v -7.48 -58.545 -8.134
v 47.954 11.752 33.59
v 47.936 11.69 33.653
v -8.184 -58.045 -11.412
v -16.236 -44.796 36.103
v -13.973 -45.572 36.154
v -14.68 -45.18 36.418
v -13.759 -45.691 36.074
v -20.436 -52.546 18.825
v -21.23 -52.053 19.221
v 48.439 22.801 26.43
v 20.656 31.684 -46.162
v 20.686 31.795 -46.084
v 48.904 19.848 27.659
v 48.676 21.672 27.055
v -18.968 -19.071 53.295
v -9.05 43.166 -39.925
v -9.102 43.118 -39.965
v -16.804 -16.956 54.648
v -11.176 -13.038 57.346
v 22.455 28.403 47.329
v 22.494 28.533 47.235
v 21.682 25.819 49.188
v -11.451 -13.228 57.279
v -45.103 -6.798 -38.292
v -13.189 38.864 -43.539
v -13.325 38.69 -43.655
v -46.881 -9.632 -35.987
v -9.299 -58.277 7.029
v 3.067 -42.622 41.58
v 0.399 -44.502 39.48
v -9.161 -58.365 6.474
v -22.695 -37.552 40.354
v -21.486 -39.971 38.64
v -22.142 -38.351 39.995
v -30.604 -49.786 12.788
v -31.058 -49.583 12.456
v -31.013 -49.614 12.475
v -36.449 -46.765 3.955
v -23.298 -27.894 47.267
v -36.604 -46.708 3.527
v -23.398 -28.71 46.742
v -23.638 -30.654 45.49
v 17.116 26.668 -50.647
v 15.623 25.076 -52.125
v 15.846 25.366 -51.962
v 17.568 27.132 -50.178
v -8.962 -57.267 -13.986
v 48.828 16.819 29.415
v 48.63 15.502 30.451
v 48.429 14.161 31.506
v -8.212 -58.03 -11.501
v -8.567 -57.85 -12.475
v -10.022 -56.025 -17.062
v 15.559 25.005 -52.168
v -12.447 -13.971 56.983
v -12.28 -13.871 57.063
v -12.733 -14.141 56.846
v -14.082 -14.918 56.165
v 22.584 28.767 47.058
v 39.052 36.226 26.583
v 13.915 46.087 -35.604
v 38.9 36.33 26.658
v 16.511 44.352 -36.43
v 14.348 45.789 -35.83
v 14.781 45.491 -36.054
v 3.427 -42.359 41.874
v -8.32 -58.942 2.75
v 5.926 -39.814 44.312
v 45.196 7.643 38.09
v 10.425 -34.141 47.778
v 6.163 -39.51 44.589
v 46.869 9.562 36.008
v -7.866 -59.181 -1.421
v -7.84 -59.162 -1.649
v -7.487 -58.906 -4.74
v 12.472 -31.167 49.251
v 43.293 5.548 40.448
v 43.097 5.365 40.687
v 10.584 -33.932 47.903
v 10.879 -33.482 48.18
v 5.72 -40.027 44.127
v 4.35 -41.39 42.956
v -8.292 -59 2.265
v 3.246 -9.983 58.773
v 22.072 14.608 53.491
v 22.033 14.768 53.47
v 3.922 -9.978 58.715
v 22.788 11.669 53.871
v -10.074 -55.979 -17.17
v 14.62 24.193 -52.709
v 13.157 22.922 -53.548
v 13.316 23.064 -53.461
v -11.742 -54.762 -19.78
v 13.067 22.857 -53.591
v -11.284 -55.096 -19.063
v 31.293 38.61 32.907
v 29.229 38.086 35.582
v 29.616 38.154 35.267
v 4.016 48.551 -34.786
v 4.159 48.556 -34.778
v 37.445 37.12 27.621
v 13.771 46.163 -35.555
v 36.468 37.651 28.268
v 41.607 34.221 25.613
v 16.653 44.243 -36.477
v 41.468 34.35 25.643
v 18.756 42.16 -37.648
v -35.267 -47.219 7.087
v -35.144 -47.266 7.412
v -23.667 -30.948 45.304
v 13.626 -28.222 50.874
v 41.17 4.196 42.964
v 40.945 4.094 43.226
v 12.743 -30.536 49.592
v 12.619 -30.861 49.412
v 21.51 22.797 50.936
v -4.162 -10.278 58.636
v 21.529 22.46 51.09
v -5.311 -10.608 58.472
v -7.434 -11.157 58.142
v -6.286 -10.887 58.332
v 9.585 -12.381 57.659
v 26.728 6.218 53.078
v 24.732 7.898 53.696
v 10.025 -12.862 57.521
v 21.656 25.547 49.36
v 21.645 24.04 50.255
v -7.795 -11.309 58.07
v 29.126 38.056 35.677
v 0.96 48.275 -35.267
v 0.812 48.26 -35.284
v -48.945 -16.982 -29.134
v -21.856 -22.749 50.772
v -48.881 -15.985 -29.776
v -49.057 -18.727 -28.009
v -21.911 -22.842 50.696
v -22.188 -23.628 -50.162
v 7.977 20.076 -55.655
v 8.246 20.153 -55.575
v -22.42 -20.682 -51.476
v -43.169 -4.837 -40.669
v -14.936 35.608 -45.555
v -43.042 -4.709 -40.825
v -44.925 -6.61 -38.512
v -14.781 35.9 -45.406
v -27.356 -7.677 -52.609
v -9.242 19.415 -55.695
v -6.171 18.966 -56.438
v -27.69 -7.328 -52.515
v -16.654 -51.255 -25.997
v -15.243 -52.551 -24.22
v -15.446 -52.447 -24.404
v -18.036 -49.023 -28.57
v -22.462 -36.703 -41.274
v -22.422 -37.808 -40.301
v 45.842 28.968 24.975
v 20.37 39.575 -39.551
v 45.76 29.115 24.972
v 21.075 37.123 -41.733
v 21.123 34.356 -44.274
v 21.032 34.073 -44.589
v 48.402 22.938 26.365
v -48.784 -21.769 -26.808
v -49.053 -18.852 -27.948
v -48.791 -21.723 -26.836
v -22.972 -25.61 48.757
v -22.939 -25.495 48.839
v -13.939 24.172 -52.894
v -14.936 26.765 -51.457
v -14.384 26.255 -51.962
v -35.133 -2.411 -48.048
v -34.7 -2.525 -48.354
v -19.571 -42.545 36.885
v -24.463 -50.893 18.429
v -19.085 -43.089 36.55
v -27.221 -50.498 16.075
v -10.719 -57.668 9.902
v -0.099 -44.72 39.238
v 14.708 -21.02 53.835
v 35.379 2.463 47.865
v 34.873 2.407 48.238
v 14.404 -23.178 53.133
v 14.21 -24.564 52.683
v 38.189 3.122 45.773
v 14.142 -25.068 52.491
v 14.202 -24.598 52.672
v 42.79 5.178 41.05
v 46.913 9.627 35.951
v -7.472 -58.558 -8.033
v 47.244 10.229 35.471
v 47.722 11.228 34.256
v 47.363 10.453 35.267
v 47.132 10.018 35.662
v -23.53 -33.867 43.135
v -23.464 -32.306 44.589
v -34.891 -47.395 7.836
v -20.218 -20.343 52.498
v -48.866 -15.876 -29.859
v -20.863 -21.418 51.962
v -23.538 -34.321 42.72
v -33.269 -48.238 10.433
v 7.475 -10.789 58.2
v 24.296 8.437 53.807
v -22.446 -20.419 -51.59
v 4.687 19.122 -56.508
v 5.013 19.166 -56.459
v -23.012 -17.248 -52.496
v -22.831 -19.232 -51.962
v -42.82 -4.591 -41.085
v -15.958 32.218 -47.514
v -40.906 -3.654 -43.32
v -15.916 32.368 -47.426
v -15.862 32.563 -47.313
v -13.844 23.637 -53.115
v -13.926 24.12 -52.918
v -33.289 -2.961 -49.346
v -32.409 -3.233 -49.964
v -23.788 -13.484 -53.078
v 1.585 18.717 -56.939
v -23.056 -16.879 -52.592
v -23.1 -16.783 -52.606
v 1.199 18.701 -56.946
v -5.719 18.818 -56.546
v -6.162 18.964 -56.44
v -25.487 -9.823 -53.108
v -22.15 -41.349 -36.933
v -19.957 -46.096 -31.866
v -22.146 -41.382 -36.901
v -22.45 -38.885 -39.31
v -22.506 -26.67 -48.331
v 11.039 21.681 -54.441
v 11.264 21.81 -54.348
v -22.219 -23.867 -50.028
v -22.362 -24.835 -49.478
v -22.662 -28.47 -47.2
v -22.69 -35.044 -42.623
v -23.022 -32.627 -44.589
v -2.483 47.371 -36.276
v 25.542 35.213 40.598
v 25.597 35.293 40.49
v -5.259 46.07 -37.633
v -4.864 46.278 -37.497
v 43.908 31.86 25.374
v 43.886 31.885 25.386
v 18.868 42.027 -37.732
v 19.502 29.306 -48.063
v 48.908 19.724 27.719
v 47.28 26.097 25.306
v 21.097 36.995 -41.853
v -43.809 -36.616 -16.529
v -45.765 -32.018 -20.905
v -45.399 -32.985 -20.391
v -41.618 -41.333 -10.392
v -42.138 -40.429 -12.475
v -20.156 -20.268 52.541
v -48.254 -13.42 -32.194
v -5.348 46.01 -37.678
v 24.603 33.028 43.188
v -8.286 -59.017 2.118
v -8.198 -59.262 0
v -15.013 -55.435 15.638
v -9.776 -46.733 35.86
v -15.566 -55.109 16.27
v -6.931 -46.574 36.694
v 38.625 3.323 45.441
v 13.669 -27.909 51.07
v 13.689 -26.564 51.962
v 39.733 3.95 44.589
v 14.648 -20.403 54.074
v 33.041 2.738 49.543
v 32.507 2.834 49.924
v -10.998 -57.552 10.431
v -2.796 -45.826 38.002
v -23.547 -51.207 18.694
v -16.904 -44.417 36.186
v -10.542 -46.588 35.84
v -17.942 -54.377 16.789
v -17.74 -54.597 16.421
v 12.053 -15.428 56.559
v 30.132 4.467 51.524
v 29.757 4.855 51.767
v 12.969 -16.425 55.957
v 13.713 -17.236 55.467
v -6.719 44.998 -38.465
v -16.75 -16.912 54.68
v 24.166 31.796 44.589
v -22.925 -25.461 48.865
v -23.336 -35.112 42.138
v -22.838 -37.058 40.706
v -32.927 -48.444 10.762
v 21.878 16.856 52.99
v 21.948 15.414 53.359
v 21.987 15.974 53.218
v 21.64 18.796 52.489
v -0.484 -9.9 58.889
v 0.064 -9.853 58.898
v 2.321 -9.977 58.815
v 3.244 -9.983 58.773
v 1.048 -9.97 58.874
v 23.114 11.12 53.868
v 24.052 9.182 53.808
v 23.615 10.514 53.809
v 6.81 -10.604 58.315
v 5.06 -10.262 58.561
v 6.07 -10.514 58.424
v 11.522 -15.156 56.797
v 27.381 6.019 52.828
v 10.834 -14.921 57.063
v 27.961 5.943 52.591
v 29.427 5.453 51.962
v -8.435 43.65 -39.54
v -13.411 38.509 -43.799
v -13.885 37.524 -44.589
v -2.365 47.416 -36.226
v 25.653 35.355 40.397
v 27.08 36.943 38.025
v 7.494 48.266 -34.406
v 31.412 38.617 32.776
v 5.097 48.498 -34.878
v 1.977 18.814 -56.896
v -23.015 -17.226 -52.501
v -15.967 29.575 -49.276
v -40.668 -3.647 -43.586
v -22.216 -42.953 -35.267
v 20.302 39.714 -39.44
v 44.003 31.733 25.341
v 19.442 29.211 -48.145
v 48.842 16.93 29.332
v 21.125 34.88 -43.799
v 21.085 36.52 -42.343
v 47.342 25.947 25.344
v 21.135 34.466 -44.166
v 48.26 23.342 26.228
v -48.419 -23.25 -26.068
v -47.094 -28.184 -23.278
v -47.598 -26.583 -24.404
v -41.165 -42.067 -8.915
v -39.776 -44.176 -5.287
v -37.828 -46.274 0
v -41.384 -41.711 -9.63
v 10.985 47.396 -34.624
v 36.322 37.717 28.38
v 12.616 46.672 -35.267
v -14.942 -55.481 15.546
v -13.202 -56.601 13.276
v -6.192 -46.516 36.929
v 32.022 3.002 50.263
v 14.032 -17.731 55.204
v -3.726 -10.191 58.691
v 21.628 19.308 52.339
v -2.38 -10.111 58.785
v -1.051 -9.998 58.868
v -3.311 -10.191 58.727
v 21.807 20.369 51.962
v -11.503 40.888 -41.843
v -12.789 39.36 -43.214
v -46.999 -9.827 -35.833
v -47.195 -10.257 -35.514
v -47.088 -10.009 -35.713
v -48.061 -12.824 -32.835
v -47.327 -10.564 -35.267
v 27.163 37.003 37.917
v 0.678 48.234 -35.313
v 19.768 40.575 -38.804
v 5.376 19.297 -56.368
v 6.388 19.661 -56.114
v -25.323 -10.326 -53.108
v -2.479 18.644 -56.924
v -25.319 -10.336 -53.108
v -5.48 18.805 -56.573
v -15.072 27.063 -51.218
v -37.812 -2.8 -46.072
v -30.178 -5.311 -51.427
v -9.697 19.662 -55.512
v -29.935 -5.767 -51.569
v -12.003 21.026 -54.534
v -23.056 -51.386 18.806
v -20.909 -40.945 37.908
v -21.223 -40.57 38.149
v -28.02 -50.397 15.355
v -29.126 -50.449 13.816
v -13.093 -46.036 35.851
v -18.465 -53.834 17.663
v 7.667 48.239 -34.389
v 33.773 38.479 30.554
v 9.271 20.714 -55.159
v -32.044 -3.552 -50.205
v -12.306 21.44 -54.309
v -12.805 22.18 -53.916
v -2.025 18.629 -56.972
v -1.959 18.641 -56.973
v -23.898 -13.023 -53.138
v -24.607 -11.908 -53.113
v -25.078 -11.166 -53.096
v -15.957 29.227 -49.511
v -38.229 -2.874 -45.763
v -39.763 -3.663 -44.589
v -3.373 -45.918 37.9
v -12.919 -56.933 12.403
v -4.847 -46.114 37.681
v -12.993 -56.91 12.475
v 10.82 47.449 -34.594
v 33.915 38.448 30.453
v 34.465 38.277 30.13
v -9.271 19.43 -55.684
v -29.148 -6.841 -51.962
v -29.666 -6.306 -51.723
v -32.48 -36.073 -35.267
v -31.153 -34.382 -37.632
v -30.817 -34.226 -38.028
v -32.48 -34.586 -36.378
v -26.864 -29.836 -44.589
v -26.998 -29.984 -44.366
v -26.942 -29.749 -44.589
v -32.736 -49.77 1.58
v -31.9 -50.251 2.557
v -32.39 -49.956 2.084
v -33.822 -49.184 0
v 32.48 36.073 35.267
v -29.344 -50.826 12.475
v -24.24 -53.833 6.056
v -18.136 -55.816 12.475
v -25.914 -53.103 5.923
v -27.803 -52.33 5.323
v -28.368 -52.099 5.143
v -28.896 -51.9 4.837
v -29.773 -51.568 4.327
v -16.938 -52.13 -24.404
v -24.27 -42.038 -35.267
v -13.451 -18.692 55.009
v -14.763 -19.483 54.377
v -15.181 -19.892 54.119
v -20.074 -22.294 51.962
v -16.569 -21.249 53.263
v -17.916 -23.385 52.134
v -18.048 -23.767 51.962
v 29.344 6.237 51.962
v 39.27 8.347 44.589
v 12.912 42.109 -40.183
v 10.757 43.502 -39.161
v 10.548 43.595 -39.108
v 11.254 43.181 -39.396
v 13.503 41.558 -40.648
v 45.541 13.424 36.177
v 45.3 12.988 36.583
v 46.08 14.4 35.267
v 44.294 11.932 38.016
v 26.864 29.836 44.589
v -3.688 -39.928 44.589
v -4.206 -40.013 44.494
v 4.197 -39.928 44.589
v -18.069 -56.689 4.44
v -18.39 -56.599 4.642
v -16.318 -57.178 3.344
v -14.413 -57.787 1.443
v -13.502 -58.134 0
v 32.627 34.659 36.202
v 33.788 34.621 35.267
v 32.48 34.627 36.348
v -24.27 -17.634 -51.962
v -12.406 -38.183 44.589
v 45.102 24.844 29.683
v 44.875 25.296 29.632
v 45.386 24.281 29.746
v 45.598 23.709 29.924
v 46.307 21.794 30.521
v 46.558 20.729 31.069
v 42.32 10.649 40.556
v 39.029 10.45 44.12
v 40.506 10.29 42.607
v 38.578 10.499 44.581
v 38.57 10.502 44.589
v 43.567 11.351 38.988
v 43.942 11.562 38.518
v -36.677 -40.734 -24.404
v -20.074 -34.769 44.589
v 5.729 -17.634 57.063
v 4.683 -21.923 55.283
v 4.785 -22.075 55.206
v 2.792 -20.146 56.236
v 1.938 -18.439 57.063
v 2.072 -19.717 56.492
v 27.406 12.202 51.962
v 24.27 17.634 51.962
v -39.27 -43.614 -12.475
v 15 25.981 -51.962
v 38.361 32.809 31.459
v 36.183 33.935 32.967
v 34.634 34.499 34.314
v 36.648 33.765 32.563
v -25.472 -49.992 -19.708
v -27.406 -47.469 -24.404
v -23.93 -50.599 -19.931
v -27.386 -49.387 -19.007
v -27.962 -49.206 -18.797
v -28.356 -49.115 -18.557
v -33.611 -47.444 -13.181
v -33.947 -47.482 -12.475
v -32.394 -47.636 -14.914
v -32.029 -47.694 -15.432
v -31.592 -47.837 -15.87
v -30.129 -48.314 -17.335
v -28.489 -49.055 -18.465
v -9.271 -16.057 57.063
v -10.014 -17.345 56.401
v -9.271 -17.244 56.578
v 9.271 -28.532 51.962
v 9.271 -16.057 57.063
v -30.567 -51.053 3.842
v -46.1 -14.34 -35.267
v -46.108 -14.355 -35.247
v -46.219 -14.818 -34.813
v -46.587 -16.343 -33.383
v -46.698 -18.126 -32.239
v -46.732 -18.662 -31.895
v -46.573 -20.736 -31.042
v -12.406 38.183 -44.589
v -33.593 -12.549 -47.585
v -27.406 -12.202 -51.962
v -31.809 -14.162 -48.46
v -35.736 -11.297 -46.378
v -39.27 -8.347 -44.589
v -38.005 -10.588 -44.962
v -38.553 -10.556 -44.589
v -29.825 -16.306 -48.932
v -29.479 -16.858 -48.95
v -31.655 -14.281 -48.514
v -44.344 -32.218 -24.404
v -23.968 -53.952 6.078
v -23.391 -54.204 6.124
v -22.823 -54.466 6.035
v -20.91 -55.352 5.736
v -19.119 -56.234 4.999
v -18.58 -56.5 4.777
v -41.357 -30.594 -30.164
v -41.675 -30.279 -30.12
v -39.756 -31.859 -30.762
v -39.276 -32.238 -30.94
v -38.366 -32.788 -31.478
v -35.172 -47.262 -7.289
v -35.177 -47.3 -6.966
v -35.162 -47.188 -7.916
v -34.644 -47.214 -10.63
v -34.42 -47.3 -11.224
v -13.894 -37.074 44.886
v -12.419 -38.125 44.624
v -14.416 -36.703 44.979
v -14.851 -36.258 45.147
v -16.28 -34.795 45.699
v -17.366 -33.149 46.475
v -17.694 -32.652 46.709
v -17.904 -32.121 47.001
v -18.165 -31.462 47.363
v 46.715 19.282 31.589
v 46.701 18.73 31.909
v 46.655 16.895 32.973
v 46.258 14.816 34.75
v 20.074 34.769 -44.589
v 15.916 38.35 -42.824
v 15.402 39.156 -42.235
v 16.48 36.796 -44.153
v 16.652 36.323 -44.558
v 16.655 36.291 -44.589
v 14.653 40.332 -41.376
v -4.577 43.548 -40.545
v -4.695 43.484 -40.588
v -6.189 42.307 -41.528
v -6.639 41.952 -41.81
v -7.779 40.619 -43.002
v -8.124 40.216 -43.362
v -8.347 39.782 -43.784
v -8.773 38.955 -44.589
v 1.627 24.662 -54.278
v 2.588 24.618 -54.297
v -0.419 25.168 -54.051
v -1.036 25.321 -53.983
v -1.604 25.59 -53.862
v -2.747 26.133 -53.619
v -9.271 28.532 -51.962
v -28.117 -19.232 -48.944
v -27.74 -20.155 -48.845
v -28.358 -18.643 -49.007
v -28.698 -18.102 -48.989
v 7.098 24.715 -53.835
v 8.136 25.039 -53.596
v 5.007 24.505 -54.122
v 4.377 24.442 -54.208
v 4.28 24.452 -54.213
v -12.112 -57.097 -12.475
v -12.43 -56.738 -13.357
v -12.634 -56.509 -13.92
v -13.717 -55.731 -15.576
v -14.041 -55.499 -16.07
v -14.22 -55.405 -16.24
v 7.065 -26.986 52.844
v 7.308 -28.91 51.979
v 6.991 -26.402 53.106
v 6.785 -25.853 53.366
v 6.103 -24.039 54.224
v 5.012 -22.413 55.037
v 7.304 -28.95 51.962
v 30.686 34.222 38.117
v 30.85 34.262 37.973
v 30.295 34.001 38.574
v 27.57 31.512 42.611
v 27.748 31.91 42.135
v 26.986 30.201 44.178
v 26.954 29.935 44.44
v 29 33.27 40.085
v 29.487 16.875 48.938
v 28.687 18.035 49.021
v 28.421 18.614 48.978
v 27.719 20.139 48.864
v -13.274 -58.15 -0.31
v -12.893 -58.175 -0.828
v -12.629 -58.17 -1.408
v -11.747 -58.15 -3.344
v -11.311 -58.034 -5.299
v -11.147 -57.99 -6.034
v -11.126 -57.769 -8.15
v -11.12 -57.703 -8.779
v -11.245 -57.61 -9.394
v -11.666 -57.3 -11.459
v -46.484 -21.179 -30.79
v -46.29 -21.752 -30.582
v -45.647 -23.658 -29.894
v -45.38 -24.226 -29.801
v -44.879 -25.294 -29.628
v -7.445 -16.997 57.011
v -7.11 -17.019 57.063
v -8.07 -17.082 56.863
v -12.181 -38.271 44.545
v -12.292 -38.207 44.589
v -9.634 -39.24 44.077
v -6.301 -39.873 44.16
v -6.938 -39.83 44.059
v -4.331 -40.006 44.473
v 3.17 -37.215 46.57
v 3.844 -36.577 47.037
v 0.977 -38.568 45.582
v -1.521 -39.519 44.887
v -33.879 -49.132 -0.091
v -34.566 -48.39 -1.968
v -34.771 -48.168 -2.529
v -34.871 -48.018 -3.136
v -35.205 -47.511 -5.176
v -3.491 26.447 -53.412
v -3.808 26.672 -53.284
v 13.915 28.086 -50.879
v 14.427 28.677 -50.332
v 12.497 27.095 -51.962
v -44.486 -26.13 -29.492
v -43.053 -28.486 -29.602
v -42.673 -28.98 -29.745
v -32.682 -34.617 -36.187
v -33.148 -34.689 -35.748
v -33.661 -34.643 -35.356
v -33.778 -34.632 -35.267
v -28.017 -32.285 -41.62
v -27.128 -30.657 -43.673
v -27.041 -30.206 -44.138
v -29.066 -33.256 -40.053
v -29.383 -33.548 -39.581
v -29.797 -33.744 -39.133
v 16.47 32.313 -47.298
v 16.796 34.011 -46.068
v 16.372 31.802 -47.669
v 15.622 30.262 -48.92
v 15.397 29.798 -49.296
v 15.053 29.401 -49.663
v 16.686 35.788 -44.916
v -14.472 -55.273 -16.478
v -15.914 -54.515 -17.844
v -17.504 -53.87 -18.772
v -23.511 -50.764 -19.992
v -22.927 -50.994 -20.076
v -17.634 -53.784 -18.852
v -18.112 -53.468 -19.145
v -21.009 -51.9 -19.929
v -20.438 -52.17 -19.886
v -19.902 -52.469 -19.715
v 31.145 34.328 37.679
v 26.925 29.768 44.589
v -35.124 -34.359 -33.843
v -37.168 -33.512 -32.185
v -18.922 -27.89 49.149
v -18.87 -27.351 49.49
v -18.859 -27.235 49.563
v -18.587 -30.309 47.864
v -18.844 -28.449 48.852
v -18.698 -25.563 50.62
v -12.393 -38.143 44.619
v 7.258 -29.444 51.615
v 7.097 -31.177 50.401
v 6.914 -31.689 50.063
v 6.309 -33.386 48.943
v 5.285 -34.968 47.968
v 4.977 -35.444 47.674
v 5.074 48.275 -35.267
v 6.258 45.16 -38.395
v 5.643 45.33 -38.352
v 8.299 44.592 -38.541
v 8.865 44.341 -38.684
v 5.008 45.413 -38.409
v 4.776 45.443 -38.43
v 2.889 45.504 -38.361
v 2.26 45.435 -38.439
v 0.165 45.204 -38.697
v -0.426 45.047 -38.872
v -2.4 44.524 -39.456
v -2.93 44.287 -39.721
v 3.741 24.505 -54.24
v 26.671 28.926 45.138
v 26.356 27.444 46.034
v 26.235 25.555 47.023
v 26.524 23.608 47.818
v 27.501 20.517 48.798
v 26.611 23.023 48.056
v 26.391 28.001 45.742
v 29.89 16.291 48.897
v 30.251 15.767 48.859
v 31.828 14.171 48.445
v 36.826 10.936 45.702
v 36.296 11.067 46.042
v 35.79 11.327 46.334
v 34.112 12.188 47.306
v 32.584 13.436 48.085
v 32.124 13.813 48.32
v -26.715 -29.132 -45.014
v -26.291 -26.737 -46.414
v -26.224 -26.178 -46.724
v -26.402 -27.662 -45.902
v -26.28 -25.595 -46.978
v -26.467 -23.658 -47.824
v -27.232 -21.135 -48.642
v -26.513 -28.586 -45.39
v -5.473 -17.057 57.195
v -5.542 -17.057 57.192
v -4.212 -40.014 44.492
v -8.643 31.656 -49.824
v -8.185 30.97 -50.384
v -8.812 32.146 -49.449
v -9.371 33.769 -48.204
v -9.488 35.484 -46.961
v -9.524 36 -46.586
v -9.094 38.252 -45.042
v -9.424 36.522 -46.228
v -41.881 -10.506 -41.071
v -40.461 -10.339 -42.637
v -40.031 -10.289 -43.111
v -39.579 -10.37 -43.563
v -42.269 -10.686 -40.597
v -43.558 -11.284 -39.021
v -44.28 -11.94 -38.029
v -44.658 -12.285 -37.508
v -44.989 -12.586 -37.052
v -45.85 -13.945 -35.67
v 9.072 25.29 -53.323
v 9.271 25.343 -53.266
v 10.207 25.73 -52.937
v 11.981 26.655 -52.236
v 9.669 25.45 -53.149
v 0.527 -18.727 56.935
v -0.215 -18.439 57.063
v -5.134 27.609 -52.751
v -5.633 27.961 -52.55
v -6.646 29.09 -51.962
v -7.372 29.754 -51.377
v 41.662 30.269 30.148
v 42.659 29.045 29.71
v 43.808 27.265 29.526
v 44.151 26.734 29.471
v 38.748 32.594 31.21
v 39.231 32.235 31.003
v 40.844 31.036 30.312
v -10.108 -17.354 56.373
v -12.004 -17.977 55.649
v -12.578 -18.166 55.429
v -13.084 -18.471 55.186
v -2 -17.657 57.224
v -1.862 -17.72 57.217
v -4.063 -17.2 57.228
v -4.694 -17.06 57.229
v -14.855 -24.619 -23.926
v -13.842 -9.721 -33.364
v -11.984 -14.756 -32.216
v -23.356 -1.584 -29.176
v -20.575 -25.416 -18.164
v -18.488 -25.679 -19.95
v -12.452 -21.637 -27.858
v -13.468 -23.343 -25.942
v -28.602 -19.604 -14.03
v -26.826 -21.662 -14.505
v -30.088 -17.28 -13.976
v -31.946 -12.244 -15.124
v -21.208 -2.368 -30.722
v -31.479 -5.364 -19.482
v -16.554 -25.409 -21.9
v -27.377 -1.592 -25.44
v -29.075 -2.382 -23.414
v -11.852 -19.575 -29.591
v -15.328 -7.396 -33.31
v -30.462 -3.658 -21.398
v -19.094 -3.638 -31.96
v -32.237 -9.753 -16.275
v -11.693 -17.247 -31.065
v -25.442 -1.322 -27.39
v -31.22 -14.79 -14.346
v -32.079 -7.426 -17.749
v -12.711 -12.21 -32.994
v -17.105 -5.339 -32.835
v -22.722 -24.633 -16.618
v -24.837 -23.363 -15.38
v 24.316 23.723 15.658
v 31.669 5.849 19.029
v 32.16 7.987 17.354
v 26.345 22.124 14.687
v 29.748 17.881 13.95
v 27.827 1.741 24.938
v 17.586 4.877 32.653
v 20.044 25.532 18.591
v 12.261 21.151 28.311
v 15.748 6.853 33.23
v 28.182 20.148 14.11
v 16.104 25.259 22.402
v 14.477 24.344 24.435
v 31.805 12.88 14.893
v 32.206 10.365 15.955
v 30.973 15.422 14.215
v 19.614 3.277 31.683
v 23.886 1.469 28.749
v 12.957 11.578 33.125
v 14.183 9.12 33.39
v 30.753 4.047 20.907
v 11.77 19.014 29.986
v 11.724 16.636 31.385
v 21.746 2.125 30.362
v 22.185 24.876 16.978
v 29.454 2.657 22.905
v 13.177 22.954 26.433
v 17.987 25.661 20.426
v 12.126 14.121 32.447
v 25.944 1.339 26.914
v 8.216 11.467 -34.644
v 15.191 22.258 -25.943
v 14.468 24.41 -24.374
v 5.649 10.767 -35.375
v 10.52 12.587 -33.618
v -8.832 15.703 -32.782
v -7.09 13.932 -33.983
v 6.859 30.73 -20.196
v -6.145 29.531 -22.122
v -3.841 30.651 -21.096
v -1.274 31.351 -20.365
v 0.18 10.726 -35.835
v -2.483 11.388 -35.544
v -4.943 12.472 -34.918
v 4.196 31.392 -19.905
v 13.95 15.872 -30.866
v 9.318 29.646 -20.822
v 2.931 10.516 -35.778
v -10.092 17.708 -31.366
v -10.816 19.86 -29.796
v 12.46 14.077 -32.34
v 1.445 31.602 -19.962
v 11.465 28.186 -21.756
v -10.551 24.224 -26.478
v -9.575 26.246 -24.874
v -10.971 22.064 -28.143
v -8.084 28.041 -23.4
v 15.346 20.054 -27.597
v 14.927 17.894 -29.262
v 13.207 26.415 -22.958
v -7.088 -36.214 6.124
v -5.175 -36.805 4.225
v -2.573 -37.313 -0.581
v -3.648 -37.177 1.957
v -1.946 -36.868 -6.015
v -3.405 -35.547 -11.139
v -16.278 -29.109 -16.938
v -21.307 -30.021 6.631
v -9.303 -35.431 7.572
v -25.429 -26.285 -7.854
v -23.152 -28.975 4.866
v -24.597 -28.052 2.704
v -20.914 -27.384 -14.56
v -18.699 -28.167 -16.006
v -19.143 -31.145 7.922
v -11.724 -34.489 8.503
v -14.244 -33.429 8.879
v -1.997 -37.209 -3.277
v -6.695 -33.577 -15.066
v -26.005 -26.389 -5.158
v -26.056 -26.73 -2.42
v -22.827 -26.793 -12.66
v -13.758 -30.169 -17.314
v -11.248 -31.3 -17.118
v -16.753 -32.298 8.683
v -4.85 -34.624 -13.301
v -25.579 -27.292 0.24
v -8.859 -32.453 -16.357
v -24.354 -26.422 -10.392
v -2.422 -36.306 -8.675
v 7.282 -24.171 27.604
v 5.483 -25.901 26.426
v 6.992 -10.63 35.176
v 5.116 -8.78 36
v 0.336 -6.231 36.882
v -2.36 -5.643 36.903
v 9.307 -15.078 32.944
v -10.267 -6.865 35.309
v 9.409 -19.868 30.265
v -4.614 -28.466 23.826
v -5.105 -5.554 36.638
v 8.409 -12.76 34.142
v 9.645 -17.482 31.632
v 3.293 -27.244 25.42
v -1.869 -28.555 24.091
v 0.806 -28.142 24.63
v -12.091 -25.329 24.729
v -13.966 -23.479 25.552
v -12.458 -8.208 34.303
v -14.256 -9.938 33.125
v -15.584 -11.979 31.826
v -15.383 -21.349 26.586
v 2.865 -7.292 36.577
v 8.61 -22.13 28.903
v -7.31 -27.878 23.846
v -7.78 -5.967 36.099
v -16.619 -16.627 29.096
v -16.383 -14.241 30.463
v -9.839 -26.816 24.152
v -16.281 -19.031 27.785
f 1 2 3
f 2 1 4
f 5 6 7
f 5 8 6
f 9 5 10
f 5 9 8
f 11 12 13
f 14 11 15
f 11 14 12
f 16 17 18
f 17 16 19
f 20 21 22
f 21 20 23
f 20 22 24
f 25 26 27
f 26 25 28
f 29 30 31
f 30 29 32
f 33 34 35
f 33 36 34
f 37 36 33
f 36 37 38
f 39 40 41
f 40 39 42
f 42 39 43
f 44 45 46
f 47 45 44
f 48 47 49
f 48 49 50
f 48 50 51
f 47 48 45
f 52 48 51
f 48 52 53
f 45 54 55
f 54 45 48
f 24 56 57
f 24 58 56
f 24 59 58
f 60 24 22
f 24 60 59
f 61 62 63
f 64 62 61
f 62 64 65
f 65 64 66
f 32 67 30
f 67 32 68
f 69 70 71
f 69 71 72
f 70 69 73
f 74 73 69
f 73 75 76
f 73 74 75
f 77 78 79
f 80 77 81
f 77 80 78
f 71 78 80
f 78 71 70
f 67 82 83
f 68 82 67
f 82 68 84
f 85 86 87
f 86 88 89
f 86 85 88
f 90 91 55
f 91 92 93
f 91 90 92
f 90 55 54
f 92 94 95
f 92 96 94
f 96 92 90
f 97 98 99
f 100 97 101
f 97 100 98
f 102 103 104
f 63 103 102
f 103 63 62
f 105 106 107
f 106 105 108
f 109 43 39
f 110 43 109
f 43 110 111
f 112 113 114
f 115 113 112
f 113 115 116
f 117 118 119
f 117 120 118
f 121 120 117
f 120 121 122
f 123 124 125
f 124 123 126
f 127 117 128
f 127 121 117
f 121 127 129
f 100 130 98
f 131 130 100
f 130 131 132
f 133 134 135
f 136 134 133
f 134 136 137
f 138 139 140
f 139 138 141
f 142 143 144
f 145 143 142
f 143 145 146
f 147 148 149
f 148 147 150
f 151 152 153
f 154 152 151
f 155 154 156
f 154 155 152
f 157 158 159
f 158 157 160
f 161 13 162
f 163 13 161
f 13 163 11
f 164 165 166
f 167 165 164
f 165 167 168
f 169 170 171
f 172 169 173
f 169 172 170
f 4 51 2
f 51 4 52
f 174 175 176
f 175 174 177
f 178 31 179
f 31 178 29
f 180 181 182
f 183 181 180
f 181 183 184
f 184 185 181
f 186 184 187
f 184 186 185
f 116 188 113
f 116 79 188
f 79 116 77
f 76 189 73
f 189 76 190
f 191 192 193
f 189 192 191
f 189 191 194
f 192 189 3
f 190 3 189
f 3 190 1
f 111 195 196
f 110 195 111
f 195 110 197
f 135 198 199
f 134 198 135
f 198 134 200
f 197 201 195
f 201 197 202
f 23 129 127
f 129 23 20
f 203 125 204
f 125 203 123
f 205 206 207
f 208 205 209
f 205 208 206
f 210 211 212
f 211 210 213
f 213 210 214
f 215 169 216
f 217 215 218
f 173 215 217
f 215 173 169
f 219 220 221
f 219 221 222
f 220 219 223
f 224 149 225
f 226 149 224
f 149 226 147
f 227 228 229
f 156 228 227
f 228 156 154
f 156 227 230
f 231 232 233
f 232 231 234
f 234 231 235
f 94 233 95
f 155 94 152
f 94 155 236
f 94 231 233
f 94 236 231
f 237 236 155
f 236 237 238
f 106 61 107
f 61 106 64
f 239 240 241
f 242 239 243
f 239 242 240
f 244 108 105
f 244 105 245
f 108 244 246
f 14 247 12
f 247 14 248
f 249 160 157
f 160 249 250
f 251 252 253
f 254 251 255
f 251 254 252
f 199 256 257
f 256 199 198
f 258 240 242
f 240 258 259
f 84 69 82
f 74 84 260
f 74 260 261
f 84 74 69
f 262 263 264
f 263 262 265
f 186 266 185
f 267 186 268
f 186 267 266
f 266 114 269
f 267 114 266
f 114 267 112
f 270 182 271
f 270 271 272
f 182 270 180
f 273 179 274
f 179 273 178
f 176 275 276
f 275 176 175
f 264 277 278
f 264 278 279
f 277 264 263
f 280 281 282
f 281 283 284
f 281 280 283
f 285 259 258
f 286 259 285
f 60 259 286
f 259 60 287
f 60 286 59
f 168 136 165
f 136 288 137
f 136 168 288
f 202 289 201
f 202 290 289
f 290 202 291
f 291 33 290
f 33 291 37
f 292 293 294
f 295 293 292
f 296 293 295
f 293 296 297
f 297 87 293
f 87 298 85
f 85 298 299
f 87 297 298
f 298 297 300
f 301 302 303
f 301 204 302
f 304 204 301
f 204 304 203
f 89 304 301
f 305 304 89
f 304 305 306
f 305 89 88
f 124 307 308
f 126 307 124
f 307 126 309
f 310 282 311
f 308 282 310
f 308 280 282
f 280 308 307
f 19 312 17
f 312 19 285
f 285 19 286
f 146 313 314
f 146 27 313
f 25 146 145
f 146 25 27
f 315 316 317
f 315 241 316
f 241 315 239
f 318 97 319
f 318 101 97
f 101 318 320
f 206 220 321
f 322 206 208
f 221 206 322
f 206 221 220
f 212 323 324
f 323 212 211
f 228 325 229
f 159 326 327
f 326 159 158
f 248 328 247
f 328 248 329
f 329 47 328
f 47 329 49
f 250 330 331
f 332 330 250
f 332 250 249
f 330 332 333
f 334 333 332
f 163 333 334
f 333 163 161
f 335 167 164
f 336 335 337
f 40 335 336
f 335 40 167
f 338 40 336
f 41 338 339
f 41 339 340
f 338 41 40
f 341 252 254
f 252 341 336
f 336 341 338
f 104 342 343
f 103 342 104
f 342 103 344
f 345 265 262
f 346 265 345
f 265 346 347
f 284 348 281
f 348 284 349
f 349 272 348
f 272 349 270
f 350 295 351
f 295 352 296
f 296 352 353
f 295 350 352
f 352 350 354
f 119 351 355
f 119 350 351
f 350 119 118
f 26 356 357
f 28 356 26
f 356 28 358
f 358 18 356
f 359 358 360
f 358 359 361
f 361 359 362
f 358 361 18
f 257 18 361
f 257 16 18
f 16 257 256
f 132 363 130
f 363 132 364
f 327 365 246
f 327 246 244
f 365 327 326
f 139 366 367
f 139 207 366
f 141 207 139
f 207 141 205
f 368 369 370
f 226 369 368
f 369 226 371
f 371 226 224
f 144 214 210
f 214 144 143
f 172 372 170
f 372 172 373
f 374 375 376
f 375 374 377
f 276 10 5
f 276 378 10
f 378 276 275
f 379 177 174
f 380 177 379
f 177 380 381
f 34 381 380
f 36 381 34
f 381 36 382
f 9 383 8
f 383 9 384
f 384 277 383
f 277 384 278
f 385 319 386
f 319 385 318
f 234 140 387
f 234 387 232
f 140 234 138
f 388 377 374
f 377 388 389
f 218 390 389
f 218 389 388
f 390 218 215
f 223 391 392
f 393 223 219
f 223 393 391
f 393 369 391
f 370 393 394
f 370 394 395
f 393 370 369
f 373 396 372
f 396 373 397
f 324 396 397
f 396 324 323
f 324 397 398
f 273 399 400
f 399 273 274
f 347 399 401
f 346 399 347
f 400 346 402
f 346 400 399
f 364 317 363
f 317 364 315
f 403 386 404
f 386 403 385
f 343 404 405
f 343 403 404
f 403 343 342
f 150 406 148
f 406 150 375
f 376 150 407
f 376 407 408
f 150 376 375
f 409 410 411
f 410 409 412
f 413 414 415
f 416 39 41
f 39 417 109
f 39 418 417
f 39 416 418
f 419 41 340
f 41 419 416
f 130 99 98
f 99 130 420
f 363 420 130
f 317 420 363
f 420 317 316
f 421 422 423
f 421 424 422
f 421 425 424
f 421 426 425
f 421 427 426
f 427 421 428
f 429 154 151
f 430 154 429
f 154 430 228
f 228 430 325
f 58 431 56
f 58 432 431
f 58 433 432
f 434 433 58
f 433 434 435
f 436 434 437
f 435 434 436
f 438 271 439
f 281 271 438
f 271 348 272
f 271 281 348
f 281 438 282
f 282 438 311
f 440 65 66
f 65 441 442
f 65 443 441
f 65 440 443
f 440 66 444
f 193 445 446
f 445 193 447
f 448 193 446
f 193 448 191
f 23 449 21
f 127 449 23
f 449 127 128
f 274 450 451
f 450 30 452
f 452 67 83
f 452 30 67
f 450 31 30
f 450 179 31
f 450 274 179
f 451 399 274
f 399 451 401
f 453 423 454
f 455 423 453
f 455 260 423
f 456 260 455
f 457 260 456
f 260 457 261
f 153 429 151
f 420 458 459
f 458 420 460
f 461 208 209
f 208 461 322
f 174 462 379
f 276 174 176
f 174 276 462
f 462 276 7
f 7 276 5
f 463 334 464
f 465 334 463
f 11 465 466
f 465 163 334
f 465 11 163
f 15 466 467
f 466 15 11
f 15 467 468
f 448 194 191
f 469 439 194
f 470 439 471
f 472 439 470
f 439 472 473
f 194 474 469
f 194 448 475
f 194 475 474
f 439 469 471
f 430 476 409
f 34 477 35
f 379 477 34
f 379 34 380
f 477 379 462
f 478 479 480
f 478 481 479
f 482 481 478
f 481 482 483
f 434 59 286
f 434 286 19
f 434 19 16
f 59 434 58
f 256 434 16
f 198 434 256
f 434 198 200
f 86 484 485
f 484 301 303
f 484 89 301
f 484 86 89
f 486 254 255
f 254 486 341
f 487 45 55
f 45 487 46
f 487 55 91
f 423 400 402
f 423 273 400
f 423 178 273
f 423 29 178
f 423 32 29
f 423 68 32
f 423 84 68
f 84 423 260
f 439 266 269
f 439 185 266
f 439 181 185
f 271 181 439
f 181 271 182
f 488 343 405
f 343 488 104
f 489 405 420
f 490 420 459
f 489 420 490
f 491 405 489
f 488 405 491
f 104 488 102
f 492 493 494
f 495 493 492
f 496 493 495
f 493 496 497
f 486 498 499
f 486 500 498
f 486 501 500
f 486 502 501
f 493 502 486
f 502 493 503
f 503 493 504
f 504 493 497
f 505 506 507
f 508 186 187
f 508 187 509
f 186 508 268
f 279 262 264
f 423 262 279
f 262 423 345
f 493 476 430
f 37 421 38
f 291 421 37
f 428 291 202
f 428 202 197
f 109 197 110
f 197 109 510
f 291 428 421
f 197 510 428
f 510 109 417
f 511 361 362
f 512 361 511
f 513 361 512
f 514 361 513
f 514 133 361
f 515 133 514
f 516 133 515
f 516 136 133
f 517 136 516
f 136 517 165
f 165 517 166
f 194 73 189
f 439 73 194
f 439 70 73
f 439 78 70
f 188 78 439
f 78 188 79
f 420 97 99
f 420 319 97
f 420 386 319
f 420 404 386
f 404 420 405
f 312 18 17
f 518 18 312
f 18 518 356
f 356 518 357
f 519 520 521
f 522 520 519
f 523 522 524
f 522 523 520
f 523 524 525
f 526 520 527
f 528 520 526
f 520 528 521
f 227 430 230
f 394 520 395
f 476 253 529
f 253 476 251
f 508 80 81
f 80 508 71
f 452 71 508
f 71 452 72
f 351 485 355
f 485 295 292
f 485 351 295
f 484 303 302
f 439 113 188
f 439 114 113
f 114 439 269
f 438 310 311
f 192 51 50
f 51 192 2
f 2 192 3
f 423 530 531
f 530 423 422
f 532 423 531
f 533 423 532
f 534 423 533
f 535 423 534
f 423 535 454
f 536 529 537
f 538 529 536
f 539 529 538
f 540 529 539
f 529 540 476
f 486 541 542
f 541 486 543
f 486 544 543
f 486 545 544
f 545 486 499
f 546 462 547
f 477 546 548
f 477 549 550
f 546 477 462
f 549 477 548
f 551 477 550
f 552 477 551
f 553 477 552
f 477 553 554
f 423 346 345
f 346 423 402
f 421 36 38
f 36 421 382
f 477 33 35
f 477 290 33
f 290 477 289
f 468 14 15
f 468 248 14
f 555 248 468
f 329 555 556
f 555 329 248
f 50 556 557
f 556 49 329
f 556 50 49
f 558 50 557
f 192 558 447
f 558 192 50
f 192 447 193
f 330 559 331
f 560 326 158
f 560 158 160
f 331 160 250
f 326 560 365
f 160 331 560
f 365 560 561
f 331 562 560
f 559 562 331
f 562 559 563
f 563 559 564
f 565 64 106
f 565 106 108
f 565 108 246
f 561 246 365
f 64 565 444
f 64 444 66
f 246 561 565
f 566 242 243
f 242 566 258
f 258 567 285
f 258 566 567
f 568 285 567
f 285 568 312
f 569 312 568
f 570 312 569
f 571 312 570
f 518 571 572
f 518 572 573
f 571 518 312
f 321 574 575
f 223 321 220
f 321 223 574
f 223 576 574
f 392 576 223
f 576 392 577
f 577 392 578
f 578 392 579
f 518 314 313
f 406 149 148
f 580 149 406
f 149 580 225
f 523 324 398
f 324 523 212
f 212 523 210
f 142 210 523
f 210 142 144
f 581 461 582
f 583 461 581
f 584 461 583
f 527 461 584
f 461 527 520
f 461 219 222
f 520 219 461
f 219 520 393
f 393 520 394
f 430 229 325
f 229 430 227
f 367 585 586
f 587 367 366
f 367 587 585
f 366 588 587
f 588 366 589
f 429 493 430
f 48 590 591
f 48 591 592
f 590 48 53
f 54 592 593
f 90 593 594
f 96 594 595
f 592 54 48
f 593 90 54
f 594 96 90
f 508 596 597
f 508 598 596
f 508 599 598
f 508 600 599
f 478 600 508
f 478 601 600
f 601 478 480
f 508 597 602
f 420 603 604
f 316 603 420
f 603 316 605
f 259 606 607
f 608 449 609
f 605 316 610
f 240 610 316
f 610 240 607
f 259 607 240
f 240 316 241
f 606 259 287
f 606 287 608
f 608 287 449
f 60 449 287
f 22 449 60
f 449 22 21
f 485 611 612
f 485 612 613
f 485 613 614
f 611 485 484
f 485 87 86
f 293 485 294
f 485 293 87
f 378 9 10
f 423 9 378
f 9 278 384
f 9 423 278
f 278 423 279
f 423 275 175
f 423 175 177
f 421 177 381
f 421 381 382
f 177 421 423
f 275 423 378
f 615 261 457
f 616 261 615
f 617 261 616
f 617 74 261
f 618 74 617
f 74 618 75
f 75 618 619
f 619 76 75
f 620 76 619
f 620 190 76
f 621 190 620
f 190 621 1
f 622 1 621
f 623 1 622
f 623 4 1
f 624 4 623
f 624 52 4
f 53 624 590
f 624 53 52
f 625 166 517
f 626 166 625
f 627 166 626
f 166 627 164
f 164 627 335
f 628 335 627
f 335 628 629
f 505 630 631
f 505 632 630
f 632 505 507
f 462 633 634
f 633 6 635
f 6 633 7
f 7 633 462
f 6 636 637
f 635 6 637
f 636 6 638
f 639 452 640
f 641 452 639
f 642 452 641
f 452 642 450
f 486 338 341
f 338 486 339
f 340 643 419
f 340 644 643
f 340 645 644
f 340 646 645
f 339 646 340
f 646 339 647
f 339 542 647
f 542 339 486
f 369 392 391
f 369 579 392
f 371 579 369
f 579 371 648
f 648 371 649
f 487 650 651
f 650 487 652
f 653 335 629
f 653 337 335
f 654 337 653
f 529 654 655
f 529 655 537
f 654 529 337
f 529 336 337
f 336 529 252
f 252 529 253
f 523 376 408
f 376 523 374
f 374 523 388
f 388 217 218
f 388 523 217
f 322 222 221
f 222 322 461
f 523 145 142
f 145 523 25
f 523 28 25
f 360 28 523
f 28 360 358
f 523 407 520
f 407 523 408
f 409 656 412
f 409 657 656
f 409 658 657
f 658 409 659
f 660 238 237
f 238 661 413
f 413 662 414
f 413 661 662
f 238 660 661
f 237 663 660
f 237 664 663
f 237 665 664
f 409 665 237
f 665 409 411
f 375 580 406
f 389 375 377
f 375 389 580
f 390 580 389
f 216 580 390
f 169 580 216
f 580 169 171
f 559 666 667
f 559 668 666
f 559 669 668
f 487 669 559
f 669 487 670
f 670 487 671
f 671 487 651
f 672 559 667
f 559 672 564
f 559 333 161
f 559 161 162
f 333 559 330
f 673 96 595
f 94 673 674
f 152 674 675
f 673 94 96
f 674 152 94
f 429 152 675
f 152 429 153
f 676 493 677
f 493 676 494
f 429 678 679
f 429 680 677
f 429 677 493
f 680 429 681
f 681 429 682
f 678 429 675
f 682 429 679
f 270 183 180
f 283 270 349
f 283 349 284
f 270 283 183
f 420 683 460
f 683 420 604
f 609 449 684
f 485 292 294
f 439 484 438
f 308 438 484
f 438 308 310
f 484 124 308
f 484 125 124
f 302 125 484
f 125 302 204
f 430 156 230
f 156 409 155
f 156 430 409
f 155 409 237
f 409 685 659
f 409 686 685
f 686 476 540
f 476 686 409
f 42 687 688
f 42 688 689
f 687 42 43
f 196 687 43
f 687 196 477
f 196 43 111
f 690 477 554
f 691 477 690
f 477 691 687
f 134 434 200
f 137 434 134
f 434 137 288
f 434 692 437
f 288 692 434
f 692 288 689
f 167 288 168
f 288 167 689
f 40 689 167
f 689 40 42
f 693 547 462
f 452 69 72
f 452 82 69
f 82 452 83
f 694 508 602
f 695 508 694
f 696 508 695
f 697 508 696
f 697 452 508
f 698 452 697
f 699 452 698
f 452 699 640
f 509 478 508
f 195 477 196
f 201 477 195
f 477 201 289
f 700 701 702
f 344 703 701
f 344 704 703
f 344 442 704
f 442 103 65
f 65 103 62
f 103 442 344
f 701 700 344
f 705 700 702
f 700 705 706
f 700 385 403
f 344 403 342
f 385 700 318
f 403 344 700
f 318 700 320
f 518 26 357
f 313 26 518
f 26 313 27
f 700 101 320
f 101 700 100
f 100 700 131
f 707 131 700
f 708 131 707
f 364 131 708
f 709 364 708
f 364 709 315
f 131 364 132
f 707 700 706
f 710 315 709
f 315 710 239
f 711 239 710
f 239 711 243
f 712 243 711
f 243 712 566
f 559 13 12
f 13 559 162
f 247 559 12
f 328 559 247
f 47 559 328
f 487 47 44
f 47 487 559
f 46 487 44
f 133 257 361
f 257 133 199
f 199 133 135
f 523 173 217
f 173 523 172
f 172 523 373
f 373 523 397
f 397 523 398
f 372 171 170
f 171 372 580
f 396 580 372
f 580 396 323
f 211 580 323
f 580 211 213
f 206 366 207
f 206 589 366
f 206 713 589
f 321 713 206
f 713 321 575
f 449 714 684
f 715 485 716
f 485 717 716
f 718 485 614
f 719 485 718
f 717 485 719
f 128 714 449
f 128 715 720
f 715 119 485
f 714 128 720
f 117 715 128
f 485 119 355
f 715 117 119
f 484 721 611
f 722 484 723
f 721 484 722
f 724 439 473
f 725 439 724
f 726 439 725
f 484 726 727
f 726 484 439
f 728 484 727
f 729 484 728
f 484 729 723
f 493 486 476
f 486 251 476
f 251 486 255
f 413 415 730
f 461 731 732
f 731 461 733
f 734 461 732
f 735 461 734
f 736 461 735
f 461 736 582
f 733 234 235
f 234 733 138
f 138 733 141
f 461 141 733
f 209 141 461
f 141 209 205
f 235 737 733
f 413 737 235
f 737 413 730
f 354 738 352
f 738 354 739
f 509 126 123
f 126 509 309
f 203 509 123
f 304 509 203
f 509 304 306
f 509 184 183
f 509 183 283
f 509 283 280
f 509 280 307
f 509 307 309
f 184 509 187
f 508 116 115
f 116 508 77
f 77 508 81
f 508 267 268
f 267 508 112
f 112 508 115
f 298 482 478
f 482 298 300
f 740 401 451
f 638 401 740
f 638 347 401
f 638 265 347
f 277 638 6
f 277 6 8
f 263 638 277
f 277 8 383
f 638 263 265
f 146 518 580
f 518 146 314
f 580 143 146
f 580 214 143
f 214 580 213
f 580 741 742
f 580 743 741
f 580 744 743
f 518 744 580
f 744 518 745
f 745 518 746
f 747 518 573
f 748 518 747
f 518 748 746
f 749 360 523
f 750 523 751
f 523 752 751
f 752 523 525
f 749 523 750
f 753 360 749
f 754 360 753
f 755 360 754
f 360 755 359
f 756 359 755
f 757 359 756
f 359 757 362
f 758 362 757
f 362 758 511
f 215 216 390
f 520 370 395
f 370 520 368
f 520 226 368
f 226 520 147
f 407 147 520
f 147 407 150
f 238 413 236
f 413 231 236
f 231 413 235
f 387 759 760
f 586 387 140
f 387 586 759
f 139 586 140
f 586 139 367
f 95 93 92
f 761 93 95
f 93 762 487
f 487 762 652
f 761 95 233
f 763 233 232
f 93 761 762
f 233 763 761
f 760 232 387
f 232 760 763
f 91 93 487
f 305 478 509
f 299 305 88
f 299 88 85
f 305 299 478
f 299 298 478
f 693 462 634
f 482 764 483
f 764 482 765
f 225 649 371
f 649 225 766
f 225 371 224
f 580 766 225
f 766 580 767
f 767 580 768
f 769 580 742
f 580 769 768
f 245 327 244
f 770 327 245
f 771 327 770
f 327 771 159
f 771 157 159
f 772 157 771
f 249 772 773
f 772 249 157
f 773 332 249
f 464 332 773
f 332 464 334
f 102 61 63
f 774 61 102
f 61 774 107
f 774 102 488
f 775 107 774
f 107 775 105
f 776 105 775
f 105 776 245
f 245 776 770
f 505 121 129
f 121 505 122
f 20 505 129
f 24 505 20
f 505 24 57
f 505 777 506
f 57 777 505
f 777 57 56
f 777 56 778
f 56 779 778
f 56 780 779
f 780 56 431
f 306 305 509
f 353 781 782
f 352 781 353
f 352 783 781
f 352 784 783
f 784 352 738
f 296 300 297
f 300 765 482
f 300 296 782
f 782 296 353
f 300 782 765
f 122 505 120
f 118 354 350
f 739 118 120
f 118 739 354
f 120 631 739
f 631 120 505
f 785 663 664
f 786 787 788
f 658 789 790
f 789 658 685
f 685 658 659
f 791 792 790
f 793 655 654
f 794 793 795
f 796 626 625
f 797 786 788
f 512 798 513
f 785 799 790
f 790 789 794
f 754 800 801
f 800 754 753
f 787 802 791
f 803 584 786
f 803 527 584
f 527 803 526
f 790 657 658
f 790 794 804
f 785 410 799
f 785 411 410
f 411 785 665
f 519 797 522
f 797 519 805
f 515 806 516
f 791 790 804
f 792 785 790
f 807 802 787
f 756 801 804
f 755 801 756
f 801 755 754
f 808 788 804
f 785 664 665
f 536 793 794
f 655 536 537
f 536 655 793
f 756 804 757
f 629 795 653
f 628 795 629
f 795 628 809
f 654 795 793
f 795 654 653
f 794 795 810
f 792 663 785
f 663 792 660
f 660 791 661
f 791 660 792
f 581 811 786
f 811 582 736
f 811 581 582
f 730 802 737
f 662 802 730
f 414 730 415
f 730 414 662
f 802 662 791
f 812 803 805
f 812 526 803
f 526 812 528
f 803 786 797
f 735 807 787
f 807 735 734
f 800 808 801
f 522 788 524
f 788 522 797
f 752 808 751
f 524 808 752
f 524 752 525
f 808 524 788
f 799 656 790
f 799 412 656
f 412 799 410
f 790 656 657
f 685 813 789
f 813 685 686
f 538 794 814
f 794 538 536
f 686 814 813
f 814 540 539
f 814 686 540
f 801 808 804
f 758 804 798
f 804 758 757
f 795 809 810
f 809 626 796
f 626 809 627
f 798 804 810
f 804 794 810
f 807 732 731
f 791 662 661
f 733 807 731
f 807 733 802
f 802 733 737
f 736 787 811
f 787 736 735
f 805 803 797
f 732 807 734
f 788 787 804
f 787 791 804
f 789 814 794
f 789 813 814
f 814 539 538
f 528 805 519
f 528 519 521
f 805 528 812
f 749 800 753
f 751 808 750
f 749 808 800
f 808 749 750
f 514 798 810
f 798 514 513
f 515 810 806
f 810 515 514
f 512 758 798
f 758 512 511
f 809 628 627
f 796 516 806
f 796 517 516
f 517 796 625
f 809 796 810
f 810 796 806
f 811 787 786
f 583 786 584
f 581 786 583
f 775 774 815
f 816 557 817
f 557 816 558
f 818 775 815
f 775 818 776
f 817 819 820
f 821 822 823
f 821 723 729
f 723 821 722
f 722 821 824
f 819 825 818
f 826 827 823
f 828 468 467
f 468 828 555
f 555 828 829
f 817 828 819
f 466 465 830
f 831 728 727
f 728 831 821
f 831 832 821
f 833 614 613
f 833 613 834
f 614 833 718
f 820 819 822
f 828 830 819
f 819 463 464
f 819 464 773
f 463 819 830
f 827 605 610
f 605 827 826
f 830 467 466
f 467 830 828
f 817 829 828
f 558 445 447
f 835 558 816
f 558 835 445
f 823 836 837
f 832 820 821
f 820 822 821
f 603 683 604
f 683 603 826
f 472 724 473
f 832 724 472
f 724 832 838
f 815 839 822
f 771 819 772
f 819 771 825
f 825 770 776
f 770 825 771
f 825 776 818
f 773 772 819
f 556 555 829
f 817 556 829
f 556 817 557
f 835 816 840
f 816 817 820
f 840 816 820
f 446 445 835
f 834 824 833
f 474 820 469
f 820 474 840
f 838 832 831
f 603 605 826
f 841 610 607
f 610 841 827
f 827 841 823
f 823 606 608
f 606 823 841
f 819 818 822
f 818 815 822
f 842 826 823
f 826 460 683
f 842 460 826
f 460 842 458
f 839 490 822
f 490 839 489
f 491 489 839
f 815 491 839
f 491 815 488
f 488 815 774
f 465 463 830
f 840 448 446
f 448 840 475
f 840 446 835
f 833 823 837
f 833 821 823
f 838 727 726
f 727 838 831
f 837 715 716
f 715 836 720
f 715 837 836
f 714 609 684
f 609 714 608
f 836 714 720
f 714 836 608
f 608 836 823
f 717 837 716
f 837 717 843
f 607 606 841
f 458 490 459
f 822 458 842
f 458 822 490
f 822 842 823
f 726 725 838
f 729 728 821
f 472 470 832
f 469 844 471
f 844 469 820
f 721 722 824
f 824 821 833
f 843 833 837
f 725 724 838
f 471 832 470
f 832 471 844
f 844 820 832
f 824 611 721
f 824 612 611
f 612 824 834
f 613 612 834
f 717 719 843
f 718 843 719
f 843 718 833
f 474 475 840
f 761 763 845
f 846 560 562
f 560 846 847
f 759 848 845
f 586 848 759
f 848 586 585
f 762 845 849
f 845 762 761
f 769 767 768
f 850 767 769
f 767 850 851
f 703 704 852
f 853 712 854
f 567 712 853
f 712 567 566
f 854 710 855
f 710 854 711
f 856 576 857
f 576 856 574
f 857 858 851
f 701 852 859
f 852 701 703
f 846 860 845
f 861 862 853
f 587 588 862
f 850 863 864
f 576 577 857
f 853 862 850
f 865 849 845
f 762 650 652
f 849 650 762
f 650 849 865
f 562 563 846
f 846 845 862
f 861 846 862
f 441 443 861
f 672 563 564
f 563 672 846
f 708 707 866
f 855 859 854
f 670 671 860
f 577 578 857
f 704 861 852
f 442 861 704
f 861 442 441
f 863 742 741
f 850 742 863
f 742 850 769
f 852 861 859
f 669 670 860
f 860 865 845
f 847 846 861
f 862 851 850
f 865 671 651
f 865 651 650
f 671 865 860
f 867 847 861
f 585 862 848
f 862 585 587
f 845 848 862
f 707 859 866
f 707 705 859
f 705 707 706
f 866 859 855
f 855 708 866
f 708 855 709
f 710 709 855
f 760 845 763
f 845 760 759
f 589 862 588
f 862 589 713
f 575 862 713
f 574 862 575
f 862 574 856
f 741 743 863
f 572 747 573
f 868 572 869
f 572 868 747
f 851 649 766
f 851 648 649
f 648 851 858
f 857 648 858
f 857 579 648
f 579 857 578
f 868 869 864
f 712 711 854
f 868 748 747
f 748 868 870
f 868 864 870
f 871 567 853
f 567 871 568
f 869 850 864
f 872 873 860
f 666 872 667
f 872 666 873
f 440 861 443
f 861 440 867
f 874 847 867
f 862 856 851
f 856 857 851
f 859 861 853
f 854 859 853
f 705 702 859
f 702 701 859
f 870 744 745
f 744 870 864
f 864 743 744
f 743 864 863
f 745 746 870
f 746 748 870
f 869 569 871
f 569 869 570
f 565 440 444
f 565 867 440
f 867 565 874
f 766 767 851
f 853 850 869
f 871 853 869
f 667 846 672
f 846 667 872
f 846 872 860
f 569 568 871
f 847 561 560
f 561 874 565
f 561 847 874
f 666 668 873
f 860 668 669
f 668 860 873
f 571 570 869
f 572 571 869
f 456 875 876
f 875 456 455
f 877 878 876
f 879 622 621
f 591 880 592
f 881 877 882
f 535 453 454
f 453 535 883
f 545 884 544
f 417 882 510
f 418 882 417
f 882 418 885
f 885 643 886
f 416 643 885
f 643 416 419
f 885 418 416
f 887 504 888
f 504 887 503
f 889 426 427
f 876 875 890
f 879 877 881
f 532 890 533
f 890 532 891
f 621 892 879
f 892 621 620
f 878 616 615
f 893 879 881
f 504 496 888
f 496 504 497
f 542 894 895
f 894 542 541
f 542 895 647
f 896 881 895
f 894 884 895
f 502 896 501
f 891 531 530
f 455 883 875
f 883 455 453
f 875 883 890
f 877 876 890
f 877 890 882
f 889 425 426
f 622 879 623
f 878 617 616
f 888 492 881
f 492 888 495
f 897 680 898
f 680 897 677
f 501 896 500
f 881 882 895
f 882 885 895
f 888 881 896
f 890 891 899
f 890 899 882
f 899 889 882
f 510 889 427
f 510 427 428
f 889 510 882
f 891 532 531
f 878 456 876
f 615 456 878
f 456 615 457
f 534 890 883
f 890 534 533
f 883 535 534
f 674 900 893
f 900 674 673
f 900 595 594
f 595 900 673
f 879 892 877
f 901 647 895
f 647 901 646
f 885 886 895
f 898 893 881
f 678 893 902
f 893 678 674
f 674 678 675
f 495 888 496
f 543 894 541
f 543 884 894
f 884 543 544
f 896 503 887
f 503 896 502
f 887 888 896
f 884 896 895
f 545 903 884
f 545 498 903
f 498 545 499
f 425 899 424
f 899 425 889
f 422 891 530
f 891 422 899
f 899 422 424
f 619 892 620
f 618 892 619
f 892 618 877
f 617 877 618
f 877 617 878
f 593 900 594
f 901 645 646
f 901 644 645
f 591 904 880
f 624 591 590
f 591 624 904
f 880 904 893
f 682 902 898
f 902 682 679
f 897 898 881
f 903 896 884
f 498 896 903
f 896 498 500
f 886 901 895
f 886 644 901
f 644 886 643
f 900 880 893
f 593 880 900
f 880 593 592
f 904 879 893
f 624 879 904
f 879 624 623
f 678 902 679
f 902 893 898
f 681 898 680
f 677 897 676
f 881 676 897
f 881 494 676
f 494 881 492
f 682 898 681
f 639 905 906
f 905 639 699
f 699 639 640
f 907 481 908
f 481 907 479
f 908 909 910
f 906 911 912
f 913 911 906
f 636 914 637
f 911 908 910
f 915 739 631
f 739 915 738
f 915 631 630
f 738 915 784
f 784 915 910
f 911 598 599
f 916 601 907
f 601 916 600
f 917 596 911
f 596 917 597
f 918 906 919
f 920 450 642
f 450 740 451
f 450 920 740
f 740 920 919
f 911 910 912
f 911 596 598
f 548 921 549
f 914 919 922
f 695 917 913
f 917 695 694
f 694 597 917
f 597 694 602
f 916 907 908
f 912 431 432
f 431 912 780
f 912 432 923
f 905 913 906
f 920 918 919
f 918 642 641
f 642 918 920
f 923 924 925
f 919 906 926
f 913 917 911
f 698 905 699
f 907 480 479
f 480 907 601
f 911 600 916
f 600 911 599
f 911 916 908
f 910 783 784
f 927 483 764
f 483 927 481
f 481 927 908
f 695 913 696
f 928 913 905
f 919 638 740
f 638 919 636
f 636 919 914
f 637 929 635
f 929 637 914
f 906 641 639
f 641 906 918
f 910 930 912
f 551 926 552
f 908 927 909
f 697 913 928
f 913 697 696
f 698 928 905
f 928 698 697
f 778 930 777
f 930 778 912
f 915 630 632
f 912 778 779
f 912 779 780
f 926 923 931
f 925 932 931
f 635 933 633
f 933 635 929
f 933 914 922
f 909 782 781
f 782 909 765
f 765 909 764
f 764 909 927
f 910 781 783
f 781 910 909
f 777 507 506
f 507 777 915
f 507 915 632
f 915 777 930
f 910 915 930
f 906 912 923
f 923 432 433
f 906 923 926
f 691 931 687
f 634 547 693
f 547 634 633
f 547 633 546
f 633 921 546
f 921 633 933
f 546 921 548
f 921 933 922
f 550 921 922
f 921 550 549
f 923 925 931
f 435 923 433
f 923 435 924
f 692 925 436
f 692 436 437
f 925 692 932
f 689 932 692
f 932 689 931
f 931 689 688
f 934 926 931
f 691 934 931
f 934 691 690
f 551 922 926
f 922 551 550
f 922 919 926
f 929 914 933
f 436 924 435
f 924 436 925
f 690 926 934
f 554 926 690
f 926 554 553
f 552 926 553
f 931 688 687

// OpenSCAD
difference() {
	intersection() {
		hull() {
			rotate(a = -133.4455949914, v = [0.6360280846, -0.3501206238, 0.0000000000]) {
				rotate(a = -90.0000000000, v = [0.9914448614, -0.1305261922, 0.0000000000]) {
					cylinder(h = 60, r = 16.2000000000);
				}
			}
			rotate(a = -133.4455949914, v = [0.6360280846, -0.3501206238, 0.0000000000]) {
				rotate(a = -90.0000000000, v = [-0.9914448614, 0.1305261922, 0.0000000000]) {
					cylinder(h = 60, r = 16.2000000000);
				}
			}
			rotate(a = -133.4455949914, v = [0.6360280846, -0.3501206238, 0.0000000000]) {
				rotate(a = -17.7962359238, v = [0.2842856105, 0.1122188565, -0.0000000000]) {
					cylinder(h = 60, r = 16.2000000000);
				}
			}
			rotate(a = -133.4455949914, v = [0.6360280846, -0.3501206238, 0.0000000000]) {
				rotate(a = -129.4241083656, v = [0.6300419381, -0.4469357231, 0.0000000000]) {
					cylinder(h = 60, r = 16.2000000000);
				}
			}
			rotate(a = -133.4455949914, v = [0.6360280846, -0.3501206238, 0.0000000000]) {
				rotate(a = -160.2852209964, v = [-0.3369163193, 0.0168636385, 0.0000000000]) {
					cylinder(h = 60, r = 16.2000000000);
				}
			}
		}
		sphere(r = 60);
	}
	union() {
		rotate(a = -133.4455949914, v = [0.6360280846, -0.3501206238, 0.0000000000]) {
			rotate(a = -90.0000000000, v = [0.9914448614, -0.1305261922, 0.0000000000]) {
				translate(v = [0, 0, 35]) {
					cylinder(h = 100, r = 13.2000000000);
				}
			}
		}
		rotate(a = -133.4455949914, v = [0.6360280846, -0.3501206238, 0.0000000000]) {
			rotate(a = -90.0000000000, v = [-0.9914448614, 0.1305261922, 0.0000000000]) {
				translate(v = [0, 0, 35]) {
					cylinder(h = 100, r = 13.2000000000);
				}
			}
		}
		rotate(a = -133.4455949914, v = [0.6360280846, -0.3501206238, 0.0000000000]) {
			rotate(a = -17.7962359238, v = [0.2842856105, 0.1122188565, -0.0000000000]) {
				translate(v = [0, 0, 35]) {
					cylinder(h = 100, r = 13.2000000000);
				}
			}
		}
		rotate(a = -133.4455949914, v = [0.6360280846, -0.3501206238, 0.0000000000]) {
			rotate(a = -129.4241083656, v = [0.6300419381, -0.4469357231, 0.0000000000]) {
				translate(v = [0, 0, 35]) {
					cylinder(h = 100, r = 13.2000000000);
				}
			}
		}
		rotate(a = -133.4455949914, v = [0.6360280846, -0.3501206238, 0.0000000000]) {
			rotate(a = -160.2852209964, v = [-0.3369163193, 0.0168636385, 0.0000000000]) {
				translate(v = [0, 0, 35]) {
					cylinder(h = 100, r = 13.2000000000);
				}
			}
		}
	}
}
